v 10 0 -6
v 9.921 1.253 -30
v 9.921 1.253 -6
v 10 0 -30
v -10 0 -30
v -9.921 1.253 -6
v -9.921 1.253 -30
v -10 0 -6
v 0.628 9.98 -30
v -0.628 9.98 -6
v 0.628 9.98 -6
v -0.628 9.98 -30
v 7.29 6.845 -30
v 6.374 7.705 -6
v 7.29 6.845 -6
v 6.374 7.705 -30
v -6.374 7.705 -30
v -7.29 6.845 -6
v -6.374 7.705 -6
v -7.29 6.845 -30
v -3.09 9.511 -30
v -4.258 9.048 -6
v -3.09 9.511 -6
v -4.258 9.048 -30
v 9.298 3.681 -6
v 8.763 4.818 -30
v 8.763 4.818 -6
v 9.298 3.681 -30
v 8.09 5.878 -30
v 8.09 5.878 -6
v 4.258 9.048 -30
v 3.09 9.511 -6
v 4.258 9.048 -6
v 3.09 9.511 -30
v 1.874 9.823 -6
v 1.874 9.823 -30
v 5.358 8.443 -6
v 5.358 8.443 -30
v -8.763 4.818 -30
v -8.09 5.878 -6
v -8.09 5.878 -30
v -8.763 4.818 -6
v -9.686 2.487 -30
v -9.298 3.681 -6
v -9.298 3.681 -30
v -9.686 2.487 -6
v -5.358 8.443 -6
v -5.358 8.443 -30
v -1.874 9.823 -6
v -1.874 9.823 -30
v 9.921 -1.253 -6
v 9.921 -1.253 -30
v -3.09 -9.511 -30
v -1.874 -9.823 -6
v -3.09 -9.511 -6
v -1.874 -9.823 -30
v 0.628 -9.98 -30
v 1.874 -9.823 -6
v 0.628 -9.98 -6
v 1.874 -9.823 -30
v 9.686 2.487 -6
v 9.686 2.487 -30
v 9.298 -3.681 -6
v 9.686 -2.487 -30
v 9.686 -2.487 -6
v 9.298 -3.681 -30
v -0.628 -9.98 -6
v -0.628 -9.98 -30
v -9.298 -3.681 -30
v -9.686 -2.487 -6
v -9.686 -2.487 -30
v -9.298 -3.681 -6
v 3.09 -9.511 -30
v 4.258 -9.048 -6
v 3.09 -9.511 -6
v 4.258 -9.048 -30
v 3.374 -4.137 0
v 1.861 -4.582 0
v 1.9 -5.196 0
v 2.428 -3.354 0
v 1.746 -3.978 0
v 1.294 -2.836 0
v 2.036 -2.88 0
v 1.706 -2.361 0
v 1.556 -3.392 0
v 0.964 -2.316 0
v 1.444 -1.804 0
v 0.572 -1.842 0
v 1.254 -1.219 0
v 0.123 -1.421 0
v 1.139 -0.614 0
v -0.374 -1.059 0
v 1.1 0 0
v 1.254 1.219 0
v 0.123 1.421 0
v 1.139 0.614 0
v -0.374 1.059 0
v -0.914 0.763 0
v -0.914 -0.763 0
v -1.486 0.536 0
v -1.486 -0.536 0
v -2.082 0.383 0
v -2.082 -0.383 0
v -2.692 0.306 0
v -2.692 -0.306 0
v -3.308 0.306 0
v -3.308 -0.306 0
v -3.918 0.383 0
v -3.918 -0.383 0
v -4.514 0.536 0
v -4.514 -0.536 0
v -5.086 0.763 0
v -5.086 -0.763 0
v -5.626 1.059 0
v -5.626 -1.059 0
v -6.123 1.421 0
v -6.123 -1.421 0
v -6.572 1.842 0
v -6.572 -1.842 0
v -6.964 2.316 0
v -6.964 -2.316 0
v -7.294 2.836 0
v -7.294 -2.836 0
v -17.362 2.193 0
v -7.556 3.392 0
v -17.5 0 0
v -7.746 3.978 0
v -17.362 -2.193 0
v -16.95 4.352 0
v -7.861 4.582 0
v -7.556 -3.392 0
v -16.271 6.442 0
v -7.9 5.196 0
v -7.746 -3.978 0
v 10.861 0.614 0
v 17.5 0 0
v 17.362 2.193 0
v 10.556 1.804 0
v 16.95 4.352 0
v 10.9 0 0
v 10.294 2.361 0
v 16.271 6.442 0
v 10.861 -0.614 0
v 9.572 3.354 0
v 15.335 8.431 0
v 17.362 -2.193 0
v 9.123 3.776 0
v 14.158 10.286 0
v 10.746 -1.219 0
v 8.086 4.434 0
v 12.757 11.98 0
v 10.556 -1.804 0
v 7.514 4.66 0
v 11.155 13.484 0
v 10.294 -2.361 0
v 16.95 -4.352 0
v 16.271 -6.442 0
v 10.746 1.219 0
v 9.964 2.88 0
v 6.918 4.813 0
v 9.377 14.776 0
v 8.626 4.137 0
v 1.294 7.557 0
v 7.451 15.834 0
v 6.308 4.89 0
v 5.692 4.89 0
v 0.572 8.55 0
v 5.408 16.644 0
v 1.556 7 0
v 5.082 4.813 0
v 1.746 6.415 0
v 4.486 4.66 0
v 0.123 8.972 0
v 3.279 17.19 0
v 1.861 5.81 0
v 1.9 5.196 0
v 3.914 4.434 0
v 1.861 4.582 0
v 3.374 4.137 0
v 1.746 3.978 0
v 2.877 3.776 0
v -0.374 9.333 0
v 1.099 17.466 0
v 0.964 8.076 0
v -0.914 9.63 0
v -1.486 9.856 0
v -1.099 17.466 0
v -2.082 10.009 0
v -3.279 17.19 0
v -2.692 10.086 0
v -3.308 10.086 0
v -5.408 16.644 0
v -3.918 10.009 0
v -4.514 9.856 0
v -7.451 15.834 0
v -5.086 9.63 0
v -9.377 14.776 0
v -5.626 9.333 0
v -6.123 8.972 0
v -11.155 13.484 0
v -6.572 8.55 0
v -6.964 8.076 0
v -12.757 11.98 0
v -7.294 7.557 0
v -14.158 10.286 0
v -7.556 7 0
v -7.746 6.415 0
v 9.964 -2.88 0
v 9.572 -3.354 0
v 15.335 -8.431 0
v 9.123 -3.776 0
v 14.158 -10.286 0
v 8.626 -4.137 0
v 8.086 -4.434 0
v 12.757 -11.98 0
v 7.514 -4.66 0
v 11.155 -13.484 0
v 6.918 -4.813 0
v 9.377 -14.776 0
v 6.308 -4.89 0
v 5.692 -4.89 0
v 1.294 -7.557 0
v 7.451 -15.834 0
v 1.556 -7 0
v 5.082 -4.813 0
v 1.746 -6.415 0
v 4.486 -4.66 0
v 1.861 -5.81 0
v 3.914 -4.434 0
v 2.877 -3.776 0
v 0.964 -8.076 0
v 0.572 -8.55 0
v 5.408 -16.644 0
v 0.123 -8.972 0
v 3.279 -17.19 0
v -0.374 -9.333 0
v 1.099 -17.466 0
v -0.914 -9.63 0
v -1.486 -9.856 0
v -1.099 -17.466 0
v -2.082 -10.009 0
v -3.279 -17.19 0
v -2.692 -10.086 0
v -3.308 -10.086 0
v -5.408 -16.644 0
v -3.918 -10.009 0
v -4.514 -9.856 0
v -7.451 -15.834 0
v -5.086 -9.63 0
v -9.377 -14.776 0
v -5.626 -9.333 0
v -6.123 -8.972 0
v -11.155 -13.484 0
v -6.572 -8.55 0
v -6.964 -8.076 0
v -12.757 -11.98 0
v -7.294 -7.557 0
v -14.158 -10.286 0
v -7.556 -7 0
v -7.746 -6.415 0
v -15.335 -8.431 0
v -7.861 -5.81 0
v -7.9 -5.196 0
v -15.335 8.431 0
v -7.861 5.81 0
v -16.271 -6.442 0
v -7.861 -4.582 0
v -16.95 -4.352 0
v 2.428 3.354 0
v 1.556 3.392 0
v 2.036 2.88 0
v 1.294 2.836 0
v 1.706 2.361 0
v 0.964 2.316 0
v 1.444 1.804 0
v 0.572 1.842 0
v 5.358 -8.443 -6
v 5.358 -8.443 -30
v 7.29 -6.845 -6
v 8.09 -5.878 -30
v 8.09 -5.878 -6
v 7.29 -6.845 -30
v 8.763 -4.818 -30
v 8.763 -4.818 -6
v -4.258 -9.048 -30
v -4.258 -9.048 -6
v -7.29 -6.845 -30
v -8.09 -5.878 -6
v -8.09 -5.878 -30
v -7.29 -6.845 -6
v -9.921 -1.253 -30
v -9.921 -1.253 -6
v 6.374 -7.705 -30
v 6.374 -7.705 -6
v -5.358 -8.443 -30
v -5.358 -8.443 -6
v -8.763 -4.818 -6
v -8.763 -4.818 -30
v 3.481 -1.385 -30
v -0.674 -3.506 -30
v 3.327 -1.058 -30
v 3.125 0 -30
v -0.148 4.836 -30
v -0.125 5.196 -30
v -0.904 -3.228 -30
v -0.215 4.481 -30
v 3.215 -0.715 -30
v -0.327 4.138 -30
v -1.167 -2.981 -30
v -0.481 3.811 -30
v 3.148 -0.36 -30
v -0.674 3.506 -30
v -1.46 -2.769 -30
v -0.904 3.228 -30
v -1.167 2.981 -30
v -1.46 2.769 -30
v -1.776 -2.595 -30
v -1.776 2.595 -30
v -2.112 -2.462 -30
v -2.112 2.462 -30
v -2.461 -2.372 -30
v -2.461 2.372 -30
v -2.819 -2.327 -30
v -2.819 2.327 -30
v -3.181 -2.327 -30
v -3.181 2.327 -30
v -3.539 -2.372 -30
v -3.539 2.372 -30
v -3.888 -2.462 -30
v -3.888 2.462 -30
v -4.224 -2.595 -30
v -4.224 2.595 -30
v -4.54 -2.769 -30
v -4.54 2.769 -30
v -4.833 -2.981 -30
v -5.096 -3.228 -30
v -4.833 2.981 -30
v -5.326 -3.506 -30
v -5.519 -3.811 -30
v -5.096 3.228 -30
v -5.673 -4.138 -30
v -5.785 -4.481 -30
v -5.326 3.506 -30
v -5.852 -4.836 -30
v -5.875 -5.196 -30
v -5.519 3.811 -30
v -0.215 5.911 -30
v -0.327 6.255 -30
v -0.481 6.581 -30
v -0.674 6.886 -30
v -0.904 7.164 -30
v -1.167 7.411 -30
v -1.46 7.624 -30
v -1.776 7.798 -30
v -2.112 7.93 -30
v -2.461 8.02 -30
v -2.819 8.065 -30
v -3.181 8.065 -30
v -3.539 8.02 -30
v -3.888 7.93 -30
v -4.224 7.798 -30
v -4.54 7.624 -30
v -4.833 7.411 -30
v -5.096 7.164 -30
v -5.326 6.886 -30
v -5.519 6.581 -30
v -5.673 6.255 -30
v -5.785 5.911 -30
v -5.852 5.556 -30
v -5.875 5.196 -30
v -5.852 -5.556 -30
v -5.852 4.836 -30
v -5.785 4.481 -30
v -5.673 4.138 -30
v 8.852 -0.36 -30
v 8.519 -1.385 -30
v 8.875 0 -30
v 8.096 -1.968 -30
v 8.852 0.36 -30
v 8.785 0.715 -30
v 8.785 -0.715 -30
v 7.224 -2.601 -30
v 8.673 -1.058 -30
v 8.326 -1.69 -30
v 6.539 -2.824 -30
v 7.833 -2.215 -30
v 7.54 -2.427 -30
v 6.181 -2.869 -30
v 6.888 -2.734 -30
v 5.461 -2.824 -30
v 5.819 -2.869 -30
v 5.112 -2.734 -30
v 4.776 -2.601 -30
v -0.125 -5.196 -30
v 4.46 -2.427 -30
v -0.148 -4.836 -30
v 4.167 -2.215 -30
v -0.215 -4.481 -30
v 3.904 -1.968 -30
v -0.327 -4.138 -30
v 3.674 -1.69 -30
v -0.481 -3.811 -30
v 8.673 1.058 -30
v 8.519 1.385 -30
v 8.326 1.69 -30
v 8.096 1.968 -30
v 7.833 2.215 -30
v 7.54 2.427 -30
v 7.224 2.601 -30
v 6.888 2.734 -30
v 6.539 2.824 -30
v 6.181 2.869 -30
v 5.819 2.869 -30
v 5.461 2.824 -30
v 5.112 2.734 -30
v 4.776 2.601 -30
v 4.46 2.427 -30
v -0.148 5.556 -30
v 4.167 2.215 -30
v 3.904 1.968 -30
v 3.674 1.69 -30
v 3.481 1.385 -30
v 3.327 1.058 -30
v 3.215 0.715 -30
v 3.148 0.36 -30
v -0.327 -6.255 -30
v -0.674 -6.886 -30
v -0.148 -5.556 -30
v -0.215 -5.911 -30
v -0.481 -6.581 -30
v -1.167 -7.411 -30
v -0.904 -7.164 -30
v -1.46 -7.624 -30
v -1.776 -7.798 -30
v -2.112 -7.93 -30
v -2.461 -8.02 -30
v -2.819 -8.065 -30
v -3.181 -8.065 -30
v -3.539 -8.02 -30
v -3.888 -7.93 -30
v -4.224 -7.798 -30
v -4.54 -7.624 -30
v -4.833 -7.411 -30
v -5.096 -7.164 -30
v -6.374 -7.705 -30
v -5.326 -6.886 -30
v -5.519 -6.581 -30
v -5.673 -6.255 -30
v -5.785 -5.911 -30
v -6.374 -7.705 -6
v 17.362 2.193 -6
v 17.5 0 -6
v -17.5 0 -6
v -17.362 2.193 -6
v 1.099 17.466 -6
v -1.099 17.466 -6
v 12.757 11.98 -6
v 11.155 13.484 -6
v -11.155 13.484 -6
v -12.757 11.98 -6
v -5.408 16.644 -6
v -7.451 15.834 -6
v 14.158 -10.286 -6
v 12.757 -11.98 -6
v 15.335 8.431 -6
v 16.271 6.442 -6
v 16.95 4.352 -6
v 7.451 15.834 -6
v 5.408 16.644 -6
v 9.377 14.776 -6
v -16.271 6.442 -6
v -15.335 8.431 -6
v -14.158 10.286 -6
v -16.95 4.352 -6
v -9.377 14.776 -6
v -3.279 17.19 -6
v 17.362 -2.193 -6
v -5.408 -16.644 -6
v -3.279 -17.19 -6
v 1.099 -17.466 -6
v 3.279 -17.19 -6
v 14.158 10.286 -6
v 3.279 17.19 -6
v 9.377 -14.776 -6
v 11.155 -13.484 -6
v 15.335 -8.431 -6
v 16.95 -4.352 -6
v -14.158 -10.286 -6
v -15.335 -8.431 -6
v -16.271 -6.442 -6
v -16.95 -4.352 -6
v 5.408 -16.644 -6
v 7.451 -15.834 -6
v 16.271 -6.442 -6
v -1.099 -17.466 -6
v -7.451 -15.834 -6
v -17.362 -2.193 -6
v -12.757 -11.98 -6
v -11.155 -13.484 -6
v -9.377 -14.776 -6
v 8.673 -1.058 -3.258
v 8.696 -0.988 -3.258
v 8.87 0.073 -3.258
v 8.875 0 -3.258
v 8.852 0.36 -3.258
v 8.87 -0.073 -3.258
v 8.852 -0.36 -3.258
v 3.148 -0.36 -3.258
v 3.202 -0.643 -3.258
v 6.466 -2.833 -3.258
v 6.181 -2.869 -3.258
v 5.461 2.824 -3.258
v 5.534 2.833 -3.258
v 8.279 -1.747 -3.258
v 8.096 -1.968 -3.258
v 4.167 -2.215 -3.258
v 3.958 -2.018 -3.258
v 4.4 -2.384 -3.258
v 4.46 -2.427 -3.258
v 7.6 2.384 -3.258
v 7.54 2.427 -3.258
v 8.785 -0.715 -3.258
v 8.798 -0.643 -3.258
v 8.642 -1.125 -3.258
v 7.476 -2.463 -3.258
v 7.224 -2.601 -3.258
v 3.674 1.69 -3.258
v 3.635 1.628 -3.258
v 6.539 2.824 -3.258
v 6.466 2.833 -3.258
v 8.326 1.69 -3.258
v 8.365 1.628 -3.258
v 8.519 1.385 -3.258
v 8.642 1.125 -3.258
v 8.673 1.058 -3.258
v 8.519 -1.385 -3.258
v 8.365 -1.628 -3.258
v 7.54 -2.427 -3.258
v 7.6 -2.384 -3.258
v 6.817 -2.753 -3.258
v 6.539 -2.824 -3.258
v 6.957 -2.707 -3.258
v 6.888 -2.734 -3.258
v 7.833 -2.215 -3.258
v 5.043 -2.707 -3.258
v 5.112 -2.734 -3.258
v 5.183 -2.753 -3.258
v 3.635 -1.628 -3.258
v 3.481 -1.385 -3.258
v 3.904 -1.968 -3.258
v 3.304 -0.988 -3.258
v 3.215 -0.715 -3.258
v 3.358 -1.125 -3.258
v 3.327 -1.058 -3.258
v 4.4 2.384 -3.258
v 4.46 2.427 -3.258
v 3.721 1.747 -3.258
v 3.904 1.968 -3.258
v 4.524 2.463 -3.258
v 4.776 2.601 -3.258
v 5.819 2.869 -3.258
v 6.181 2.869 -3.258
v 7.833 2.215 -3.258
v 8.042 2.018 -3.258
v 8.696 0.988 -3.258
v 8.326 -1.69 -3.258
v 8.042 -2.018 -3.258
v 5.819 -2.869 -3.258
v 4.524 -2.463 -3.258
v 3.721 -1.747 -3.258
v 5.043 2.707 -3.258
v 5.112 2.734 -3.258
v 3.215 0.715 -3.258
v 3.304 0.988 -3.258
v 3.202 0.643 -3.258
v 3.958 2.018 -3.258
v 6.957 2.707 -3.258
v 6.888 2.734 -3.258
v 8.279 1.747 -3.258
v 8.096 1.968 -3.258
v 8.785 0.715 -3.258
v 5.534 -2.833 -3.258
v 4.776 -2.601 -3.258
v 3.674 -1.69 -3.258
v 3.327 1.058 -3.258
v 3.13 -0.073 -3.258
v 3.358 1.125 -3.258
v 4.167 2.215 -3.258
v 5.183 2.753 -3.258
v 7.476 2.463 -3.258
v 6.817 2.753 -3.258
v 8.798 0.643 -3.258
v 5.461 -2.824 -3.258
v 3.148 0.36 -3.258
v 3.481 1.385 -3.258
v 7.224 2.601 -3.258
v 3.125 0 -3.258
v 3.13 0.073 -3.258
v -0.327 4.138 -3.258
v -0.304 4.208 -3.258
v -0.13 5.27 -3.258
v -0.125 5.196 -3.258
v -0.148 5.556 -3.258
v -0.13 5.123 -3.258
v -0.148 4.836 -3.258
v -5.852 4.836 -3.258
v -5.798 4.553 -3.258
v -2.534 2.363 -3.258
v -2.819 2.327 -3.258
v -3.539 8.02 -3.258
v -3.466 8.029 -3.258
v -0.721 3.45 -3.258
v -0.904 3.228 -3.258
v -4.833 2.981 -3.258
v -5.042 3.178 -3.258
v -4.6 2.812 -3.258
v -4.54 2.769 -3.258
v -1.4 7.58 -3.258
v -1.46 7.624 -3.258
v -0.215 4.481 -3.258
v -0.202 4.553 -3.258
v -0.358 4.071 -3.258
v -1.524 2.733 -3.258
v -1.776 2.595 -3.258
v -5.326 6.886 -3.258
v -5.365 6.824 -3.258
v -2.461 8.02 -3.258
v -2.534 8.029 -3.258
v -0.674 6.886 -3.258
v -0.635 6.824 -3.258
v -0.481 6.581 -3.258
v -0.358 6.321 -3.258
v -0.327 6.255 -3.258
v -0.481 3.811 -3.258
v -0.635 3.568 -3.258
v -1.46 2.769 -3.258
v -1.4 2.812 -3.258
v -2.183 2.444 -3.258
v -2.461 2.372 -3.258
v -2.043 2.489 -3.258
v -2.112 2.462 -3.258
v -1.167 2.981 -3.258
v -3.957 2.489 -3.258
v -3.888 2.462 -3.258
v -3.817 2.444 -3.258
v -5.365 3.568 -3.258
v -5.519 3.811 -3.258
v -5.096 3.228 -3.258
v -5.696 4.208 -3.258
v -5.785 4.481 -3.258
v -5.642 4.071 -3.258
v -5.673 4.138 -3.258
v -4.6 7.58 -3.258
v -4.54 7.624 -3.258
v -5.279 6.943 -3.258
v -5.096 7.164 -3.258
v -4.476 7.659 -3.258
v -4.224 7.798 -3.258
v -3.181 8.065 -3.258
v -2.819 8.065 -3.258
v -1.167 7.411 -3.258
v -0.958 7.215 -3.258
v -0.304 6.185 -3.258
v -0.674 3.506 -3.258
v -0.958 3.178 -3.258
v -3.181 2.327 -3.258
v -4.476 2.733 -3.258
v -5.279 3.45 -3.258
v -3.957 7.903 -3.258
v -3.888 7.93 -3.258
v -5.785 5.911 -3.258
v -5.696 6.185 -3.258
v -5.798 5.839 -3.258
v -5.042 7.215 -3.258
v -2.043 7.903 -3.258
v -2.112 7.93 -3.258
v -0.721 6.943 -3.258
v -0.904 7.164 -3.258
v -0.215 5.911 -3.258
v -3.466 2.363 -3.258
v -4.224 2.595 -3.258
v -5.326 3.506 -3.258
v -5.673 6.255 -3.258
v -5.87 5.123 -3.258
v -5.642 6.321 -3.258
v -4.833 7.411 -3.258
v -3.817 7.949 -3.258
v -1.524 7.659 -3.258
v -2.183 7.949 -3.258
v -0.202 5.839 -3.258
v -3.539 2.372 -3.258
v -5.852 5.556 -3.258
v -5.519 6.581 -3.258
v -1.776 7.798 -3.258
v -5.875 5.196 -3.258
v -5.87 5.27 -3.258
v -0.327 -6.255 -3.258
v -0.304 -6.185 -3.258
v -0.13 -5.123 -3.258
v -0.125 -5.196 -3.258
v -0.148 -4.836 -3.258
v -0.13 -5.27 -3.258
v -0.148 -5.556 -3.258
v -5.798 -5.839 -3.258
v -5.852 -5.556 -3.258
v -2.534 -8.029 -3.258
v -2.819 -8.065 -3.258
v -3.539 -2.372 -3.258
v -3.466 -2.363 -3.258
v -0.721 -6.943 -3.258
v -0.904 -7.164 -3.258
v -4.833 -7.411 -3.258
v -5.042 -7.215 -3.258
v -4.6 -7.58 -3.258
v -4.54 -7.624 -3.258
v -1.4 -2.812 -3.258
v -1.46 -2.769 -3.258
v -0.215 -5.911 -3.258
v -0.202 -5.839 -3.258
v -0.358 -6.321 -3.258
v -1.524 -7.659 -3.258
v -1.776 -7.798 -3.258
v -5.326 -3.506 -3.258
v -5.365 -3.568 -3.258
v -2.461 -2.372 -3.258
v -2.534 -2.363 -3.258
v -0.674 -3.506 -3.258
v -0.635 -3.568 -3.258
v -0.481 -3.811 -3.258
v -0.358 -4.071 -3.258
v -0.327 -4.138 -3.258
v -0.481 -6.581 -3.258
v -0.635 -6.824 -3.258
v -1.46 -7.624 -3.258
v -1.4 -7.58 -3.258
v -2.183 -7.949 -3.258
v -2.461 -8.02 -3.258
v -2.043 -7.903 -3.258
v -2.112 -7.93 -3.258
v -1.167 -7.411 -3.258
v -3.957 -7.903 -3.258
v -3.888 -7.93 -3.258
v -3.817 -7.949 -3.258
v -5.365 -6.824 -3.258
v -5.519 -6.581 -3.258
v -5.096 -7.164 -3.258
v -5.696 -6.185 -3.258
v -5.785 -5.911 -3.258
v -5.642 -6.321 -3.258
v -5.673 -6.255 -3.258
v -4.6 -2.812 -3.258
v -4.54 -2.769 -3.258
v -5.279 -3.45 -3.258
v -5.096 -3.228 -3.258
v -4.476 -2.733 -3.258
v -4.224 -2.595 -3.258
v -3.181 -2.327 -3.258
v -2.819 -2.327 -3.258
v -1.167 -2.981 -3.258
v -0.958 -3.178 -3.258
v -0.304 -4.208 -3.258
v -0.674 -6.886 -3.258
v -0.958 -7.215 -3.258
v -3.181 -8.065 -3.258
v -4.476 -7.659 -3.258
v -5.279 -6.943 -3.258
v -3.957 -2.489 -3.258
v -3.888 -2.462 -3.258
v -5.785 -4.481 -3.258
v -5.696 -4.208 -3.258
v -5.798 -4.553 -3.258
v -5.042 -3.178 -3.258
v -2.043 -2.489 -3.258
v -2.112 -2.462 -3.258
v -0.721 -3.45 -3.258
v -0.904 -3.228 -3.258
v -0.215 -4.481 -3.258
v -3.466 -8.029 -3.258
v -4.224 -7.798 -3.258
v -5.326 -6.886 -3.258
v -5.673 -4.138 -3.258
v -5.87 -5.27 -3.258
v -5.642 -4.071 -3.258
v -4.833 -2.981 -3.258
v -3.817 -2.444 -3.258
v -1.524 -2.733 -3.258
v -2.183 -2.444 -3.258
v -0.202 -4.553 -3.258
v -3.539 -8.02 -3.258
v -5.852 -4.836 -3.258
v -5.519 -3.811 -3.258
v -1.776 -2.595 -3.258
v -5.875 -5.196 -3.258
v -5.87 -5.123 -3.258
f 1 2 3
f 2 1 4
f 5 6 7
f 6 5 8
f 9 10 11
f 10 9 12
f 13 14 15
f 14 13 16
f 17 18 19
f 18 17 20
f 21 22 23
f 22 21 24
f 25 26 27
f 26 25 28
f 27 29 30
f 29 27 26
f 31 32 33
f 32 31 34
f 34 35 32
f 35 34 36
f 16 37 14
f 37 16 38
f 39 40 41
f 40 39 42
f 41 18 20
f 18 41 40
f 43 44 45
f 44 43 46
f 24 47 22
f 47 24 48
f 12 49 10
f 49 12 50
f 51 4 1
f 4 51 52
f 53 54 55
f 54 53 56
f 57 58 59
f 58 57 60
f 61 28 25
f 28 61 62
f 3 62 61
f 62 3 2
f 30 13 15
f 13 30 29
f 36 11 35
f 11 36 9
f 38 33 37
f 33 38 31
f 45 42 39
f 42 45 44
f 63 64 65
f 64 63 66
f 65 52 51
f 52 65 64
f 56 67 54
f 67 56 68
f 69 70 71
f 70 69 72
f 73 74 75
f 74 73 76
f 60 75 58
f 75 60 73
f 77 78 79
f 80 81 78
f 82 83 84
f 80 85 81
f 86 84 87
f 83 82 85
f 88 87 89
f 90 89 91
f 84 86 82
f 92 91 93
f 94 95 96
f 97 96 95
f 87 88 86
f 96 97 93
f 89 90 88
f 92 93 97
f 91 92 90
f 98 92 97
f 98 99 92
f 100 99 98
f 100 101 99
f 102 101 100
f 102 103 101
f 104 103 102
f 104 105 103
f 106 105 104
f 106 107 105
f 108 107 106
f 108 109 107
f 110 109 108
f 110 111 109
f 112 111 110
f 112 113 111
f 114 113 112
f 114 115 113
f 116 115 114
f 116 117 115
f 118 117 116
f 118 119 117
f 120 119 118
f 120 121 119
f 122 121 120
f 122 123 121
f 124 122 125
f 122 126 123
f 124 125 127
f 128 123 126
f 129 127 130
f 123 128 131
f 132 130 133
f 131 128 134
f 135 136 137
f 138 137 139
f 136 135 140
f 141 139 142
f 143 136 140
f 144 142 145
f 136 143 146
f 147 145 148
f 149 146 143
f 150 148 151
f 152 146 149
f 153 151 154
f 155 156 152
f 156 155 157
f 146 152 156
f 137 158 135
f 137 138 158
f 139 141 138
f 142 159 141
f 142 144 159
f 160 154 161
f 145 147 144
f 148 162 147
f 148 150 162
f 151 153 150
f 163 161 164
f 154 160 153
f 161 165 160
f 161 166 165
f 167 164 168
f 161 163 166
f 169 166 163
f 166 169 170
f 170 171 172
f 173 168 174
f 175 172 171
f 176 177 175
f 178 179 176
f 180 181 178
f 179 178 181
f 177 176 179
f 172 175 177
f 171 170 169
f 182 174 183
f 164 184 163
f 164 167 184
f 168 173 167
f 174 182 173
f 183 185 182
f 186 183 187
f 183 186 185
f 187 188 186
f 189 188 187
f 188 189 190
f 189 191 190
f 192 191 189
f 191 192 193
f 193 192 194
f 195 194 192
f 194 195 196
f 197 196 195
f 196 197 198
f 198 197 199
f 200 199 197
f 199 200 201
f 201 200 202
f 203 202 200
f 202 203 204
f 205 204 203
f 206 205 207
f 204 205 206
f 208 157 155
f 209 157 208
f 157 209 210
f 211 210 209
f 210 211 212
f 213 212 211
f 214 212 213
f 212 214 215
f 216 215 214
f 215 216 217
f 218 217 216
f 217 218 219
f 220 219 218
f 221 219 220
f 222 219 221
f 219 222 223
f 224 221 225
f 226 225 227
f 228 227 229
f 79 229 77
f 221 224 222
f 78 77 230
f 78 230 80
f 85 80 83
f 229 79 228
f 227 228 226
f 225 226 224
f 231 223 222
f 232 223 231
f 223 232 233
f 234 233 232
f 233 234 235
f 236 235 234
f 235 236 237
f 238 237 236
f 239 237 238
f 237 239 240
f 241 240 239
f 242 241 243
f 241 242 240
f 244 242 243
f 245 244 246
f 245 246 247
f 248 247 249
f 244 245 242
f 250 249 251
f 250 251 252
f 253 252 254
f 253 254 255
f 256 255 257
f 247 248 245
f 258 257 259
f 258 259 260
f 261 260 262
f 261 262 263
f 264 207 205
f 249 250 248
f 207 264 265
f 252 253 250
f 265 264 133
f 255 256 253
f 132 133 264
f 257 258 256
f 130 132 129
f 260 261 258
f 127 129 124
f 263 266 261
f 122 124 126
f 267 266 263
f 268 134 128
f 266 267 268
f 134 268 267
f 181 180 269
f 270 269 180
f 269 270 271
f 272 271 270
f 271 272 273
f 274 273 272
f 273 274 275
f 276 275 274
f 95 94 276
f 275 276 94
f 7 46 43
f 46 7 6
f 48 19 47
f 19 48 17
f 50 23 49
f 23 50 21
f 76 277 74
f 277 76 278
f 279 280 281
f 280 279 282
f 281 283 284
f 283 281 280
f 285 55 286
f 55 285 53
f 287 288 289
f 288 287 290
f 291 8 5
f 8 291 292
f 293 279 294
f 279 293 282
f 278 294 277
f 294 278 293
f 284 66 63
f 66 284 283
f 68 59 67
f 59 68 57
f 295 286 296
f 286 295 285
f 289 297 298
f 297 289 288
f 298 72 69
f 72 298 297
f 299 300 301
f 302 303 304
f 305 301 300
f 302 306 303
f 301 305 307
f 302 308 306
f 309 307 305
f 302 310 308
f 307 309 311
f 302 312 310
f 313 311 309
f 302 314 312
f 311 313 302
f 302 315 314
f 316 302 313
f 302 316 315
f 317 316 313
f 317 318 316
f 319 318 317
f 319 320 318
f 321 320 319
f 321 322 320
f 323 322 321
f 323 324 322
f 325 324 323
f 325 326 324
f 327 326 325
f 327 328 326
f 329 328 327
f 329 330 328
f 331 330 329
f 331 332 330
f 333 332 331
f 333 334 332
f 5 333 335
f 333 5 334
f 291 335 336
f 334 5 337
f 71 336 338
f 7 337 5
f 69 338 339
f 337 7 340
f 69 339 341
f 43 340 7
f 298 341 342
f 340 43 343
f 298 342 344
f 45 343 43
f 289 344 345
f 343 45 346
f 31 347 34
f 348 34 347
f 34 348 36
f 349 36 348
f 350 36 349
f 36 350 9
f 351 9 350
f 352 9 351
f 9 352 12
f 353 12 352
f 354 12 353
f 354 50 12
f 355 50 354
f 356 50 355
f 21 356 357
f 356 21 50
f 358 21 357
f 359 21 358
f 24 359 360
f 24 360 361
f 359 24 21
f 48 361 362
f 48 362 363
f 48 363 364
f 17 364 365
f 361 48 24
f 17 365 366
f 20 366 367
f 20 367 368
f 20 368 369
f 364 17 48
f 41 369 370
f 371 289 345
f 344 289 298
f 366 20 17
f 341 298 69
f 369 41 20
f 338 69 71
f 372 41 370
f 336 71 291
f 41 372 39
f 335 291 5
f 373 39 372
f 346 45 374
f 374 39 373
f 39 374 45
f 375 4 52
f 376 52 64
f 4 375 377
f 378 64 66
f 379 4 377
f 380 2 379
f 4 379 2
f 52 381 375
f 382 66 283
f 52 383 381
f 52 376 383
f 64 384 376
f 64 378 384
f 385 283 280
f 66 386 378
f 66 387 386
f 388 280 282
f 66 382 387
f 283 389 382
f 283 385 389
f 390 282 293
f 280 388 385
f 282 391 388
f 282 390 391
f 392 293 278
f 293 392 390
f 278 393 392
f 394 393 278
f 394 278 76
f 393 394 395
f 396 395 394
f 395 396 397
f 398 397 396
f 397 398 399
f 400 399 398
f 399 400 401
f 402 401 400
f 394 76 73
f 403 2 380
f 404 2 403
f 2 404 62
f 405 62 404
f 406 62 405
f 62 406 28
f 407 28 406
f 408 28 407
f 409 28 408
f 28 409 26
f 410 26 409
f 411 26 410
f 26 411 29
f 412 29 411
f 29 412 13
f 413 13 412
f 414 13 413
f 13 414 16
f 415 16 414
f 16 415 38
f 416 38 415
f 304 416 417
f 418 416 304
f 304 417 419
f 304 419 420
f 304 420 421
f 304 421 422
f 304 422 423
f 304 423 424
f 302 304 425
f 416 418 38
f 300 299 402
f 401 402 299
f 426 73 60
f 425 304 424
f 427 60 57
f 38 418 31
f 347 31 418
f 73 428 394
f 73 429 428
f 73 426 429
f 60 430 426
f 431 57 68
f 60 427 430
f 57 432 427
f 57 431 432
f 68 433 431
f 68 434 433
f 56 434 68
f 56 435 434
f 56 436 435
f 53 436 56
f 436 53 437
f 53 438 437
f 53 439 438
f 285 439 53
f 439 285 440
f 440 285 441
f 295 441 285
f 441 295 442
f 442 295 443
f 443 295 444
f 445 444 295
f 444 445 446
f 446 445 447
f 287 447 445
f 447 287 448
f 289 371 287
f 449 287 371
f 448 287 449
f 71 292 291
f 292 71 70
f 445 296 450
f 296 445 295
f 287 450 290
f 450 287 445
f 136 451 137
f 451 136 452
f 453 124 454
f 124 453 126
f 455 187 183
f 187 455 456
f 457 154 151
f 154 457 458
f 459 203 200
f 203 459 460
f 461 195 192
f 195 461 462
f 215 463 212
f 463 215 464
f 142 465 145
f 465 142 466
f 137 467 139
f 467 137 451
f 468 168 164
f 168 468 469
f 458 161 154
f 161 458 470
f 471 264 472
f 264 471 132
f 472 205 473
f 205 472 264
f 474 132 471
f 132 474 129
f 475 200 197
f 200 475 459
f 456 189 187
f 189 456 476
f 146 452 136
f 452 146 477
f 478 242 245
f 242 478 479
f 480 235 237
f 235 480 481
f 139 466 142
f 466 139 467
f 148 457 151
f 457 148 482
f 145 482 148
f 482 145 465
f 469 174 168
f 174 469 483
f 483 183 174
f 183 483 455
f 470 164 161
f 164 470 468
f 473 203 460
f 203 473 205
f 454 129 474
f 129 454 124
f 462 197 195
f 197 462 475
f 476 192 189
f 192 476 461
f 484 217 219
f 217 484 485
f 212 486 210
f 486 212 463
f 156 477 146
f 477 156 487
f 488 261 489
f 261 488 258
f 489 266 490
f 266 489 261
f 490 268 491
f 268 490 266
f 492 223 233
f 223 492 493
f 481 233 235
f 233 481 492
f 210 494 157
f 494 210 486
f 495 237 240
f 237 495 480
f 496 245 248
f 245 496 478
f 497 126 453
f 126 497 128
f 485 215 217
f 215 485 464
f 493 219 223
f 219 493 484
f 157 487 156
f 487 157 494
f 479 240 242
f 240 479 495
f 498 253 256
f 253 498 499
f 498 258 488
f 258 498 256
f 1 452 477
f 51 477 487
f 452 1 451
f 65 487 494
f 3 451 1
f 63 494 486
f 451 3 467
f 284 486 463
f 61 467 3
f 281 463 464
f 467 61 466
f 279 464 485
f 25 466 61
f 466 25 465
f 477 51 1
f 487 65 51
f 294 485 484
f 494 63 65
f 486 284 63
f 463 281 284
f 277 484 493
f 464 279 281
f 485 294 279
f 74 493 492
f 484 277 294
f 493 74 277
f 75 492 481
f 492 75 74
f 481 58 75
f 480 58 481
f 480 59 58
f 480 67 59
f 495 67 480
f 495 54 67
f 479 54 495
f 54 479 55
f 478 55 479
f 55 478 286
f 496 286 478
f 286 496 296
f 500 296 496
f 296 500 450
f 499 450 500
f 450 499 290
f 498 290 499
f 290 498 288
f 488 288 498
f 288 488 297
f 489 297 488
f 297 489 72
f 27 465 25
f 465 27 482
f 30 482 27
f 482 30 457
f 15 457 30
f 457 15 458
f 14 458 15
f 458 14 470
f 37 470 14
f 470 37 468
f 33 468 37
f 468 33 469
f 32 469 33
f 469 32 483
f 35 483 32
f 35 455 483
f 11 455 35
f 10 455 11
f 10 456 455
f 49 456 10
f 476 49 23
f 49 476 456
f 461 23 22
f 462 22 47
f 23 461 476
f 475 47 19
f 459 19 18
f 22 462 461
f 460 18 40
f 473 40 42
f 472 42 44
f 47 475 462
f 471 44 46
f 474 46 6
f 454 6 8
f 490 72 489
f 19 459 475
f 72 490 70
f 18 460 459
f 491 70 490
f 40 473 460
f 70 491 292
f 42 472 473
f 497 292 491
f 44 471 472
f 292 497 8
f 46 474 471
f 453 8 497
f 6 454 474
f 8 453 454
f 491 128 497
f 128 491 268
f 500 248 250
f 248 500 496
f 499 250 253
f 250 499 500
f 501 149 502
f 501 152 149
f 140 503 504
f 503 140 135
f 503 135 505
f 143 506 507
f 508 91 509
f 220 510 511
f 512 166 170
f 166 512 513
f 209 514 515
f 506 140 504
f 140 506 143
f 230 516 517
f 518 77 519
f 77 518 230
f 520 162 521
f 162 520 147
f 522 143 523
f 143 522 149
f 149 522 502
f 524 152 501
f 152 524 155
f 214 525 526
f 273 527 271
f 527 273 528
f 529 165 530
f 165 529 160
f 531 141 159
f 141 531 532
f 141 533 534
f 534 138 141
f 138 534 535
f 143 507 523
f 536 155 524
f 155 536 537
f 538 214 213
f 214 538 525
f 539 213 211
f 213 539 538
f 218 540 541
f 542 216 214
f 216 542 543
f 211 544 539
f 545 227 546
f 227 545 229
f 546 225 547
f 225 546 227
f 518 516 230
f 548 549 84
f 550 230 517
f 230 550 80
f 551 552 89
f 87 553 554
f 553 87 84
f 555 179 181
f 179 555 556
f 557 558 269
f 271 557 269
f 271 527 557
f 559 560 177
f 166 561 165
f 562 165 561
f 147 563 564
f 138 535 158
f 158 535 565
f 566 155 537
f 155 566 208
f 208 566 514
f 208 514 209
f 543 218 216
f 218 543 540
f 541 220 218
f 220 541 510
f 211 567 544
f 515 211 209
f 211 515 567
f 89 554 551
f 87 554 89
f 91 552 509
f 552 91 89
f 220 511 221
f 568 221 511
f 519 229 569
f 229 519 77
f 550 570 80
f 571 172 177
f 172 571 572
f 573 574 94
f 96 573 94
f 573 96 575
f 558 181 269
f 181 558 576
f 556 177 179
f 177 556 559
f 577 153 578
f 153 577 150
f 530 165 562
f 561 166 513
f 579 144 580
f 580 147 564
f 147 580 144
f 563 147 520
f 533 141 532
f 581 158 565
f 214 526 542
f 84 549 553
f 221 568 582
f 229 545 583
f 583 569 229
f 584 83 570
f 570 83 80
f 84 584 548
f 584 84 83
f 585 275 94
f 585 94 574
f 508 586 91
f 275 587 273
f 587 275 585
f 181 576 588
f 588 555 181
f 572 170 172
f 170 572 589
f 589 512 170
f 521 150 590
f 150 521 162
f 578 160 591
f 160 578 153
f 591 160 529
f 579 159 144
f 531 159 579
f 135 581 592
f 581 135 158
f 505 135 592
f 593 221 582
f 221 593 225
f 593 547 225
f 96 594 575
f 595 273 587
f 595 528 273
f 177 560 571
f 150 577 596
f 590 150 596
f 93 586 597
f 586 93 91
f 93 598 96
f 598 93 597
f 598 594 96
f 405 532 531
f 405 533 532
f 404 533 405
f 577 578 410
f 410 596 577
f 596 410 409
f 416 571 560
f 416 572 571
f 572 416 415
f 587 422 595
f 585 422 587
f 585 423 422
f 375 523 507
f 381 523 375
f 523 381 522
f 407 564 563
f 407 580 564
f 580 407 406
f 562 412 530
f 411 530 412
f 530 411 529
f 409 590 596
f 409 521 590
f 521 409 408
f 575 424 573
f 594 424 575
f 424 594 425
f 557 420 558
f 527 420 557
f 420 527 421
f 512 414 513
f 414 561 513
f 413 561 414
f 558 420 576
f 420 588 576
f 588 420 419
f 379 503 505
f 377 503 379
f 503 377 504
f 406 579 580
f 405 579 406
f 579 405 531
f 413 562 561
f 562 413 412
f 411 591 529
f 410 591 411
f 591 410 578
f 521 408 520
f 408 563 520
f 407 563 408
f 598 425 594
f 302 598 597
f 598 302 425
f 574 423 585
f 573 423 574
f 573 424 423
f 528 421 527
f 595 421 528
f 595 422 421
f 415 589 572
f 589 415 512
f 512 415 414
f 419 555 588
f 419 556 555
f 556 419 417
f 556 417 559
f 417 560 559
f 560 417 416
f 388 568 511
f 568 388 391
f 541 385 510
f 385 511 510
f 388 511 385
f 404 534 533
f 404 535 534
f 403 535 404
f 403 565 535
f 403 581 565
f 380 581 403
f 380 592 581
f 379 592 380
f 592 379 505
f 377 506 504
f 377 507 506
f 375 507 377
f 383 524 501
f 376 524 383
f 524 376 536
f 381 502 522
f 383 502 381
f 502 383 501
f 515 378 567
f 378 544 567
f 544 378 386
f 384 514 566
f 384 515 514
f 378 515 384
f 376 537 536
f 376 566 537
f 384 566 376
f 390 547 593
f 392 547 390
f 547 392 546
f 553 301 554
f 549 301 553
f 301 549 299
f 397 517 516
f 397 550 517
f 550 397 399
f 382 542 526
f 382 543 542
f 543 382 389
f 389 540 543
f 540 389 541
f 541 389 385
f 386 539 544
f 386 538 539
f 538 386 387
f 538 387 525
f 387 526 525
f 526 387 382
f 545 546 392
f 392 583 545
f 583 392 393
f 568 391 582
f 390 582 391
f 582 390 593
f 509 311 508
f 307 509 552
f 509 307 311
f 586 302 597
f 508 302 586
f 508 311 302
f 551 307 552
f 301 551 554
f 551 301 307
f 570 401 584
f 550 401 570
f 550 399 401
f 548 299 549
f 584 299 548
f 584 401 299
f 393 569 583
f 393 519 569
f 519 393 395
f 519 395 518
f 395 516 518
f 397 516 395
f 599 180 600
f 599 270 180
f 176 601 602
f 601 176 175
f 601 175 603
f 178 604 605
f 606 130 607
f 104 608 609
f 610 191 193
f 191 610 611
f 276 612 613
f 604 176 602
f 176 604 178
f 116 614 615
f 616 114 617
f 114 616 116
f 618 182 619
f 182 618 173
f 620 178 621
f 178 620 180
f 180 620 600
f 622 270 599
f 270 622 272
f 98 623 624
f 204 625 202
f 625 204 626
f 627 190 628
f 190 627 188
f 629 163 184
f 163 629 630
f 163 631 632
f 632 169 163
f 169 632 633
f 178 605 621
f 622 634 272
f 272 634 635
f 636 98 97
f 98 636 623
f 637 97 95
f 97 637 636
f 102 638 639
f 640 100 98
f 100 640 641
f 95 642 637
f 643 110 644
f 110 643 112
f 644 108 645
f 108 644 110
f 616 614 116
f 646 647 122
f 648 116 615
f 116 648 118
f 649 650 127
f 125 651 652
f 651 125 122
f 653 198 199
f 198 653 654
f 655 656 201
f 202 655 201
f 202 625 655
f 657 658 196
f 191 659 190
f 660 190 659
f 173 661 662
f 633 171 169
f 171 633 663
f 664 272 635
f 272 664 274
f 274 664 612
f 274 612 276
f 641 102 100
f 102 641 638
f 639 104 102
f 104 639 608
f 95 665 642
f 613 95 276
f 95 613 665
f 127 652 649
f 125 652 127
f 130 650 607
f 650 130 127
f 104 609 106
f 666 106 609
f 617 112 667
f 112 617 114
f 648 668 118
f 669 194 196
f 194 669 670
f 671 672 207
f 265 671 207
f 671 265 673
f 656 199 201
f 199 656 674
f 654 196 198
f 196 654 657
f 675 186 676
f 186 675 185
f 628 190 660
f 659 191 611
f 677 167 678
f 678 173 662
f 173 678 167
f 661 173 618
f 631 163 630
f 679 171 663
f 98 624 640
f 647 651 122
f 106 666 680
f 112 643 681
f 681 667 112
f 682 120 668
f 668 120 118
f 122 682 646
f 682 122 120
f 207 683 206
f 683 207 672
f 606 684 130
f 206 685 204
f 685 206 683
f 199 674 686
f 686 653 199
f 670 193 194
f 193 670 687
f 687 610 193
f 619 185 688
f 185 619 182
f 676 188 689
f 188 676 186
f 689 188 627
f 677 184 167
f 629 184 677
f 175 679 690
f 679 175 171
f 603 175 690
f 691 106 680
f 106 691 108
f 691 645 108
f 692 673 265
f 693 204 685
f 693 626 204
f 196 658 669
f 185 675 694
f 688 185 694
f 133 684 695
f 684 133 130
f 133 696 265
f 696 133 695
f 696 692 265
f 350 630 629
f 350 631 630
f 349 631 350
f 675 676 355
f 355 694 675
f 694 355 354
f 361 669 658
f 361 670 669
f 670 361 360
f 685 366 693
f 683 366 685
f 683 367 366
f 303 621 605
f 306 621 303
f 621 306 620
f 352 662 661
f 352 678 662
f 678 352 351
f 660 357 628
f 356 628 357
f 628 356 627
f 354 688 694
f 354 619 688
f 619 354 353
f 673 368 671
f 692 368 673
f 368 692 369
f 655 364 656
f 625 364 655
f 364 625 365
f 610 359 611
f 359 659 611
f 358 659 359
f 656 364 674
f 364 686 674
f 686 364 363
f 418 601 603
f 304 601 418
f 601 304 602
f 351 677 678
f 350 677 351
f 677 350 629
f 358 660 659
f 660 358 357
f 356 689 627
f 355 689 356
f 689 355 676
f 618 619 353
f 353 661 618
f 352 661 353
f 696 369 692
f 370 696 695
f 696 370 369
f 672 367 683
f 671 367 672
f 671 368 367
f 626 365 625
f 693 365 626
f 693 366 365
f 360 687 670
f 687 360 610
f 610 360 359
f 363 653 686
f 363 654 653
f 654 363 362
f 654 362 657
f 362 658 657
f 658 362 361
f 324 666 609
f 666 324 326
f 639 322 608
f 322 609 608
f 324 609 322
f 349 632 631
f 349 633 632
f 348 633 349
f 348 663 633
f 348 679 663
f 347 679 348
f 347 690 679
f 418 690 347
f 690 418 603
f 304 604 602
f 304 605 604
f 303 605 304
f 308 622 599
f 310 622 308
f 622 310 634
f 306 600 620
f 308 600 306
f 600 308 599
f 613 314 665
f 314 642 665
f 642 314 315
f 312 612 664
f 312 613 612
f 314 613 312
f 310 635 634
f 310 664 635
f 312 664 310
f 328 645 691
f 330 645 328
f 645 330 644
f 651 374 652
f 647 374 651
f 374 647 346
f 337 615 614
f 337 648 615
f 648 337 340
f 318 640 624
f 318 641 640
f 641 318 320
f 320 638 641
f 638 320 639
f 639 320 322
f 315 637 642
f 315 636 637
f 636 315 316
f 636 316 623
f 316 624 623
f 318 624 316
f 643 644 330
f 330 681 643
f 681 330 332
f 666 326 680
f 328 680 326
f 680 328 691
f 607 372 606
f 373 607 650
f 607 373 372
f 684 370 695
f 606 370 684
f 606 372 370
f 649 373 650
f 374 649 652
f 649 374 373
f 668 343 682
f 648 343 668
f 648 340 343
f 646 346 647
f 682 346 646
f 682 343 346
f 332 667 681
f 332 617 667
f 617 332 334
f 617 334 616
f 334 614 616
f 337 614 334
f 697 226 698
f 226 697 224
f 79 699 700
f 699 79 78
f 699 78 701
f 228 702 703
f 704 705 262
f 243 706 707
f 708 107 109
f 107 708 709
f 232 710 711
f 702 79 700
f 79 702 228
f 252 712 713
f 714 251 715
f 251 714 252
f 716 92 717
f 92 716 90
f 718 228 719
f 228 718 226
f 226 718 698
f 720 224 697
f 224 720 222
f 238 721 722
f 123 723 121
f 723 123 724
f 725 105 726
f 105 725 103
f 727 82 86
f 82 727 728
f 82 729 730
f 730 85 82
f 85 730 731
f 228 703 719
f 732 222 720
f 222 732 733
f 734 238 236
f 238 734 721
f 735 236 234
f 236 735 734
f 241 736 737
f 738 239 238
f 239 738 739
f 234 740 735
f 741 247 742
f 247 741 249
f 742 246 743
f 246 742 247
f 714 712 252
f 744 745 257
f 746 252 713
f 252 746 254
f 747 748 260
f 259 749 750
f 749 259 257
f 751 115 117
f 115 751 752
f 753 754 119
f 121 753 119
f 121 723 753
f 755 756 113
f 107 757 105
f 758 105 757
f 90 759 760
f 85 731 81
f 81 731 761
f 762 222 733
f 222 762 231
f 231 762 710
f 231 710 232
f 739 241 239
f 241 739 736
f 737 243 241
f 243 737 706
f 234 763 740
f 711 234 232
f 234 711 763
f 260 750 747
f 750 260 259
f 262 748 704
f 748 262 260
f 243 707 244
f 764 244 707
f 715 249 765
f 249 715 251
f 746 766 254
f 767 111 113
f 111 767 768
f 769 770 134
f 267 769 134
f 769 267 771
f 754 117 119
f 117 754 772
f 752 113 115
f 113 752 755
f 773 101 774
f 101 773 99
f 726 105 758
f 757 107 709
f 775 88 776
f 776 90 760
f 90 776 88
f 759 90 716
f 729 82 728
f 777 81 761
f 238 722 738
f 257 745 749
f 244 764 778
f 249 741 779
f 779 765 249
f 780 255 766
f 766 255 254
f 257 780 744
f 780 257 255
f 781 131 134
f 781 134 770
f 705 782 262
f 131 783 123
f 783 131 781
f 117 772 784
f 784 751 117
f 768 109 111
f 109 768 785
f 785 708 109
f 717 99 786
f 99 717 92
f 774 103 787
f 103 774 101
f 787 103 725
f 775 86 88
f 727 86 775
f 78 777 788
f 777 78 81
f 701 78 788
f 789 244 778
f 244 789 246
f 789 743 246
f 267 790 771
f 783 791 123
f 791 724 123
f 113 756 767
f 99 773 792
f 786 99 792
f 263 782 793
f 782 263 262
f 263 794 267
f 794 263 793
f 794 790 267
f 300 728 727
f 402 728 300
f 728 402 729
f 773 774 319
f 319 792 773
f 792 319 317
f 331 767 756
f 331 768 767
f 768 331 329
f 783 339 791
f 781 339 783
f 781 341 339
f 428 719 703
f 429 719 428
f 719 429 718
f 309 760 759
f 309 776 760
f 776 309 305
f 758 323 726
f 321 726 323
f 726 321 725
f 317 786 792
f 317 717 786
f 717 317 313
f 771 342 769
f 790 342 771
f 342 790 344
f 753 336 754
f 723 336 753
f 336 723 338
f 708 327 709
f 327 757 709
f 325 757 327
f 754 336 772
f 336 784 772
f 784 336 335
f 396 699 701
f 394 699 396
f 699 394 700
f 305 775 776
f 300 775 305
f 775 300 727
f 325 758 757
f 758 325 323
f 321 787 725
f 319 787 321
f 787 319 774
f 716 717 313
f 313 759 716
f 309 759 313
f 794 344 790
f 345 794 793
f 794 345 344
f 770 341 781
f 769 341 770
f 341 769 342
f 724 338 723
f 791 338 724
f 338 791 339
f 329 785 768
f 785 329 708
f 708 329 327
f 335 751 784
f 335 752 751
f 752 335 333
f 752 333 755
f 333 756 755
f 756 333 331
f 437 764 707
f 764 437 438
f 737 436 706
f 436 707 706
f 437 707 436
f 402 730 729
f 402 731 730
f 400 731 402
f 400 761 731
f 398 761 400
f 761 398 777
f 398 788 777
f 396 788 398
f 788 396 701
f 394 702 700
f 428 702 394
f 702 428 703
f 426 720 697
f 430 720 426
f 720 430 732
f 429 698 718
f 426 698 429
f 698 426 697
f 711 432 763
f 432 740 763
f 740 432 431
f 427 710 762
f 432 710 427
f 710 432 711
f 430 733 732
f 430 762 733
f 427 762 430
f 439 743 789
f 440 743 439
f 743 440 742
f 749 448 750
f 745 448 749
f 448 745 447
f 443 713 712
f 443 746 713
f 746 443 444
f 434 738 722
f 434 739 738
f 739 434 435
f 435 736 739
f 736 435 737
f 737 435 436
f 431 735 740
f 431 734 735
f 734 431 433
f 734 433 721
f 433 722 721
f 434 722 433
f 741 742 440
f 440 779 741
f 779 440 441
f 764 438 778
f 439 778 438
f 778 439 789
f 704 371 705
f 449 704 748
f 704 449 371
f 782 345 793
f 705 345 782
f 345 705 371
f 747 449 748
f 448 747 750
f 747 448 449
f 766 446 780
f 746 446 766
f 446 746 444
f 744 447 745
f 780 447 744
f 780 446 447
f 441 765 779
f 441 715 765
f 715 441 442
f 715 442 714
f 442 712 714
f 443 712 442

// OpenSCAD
$fn = 50;


difference() {
	union() {
		translate(v = [0, 0, -30.0000000000]) {
			cylinder(h = 30, r = 10.0000000000);
		}
		translate(v = [0, 0, -6.0000000000]) {
			cylinder(h = 6, r = 17.5000000000);
		}
	}
	union() {
		translate(v = [6.0000000000, 0.0000000000, 0]) {
			rotate(a = [0, 0, 0]) {
				difference() {
					union() {
						#translate(v = [0, 0, -3.7000000000]) {
							cylinder(h = 3.7000000000, r = 10.0000000000, r1 = 2.6000000000, r2 = 4.9000000000);
						}
						#translate(v = [0, 0, -30.0000000000]) {
							cylinder(h = 30, r = 2.6000000000);
						}
						#translate(v = [0, 0, -30.0000000000]) {
							cylinder(h = 30, r = 2.8750000000);
						}
						#translate(v = [0, 0, -30.0000000000]) {
							cylinder(h = 30, r = 2.6000000000);
						}
					}
					union();
				}
			}
		}
		translate(v = [-3.0000000000, 5.1961524227, 0]) {
			rotate(a = [0, 0, 0]) {
				difference() {
					union() {
						#translate(v = [0, 0, -3.7000000000]) {
							cylinder(h = 3.7000000000, r = 10.0000000000, r1 = 2.6000000000, r2 = 4.9000000000);
						}
						#translate(v = [0, 0, -30.0000000000]) {
							cylinder(h = 30, r = 2.6000000000);
						}
						#translate(v = [0, 0, -30.0000000000]) {
							cylinder(h = 30, r = 2.8750000000);
						}
						#translate(v = [0, 0, -30.0000000000]) {
							cylinder(h = 30, r = 2.6000000000);
						}
					}
					union();
				}
			}
		}
		translate(v = [-3.0000000000, -5.1961524227, 0]) {
			rotate(a = [0, 0, 0]) {
				difference() {
					union() {
						#translate(v = [0, 0, -3.7000000000]) {
							cylinder(h = 3.7000000000, r = 10.0000000000, r1 = 2.6000000000, r2 = 4.9000000000);
						}
						#translate(v = [0, 0, -30.0000000000]) {
							cylinder(h = 30, r = 2.6000000000);
						}
						#translate(v = [0, 0, -30.0000000000]) {
							cylinder(h = 30, r = 2.8750000000);
						}
						#translate(v = [0, 0, -30.0000000000]) {
							cylinder(h = 30, r = 2.6000000000);
						}
					}
					union();
				}
			}
		}
	}
}
